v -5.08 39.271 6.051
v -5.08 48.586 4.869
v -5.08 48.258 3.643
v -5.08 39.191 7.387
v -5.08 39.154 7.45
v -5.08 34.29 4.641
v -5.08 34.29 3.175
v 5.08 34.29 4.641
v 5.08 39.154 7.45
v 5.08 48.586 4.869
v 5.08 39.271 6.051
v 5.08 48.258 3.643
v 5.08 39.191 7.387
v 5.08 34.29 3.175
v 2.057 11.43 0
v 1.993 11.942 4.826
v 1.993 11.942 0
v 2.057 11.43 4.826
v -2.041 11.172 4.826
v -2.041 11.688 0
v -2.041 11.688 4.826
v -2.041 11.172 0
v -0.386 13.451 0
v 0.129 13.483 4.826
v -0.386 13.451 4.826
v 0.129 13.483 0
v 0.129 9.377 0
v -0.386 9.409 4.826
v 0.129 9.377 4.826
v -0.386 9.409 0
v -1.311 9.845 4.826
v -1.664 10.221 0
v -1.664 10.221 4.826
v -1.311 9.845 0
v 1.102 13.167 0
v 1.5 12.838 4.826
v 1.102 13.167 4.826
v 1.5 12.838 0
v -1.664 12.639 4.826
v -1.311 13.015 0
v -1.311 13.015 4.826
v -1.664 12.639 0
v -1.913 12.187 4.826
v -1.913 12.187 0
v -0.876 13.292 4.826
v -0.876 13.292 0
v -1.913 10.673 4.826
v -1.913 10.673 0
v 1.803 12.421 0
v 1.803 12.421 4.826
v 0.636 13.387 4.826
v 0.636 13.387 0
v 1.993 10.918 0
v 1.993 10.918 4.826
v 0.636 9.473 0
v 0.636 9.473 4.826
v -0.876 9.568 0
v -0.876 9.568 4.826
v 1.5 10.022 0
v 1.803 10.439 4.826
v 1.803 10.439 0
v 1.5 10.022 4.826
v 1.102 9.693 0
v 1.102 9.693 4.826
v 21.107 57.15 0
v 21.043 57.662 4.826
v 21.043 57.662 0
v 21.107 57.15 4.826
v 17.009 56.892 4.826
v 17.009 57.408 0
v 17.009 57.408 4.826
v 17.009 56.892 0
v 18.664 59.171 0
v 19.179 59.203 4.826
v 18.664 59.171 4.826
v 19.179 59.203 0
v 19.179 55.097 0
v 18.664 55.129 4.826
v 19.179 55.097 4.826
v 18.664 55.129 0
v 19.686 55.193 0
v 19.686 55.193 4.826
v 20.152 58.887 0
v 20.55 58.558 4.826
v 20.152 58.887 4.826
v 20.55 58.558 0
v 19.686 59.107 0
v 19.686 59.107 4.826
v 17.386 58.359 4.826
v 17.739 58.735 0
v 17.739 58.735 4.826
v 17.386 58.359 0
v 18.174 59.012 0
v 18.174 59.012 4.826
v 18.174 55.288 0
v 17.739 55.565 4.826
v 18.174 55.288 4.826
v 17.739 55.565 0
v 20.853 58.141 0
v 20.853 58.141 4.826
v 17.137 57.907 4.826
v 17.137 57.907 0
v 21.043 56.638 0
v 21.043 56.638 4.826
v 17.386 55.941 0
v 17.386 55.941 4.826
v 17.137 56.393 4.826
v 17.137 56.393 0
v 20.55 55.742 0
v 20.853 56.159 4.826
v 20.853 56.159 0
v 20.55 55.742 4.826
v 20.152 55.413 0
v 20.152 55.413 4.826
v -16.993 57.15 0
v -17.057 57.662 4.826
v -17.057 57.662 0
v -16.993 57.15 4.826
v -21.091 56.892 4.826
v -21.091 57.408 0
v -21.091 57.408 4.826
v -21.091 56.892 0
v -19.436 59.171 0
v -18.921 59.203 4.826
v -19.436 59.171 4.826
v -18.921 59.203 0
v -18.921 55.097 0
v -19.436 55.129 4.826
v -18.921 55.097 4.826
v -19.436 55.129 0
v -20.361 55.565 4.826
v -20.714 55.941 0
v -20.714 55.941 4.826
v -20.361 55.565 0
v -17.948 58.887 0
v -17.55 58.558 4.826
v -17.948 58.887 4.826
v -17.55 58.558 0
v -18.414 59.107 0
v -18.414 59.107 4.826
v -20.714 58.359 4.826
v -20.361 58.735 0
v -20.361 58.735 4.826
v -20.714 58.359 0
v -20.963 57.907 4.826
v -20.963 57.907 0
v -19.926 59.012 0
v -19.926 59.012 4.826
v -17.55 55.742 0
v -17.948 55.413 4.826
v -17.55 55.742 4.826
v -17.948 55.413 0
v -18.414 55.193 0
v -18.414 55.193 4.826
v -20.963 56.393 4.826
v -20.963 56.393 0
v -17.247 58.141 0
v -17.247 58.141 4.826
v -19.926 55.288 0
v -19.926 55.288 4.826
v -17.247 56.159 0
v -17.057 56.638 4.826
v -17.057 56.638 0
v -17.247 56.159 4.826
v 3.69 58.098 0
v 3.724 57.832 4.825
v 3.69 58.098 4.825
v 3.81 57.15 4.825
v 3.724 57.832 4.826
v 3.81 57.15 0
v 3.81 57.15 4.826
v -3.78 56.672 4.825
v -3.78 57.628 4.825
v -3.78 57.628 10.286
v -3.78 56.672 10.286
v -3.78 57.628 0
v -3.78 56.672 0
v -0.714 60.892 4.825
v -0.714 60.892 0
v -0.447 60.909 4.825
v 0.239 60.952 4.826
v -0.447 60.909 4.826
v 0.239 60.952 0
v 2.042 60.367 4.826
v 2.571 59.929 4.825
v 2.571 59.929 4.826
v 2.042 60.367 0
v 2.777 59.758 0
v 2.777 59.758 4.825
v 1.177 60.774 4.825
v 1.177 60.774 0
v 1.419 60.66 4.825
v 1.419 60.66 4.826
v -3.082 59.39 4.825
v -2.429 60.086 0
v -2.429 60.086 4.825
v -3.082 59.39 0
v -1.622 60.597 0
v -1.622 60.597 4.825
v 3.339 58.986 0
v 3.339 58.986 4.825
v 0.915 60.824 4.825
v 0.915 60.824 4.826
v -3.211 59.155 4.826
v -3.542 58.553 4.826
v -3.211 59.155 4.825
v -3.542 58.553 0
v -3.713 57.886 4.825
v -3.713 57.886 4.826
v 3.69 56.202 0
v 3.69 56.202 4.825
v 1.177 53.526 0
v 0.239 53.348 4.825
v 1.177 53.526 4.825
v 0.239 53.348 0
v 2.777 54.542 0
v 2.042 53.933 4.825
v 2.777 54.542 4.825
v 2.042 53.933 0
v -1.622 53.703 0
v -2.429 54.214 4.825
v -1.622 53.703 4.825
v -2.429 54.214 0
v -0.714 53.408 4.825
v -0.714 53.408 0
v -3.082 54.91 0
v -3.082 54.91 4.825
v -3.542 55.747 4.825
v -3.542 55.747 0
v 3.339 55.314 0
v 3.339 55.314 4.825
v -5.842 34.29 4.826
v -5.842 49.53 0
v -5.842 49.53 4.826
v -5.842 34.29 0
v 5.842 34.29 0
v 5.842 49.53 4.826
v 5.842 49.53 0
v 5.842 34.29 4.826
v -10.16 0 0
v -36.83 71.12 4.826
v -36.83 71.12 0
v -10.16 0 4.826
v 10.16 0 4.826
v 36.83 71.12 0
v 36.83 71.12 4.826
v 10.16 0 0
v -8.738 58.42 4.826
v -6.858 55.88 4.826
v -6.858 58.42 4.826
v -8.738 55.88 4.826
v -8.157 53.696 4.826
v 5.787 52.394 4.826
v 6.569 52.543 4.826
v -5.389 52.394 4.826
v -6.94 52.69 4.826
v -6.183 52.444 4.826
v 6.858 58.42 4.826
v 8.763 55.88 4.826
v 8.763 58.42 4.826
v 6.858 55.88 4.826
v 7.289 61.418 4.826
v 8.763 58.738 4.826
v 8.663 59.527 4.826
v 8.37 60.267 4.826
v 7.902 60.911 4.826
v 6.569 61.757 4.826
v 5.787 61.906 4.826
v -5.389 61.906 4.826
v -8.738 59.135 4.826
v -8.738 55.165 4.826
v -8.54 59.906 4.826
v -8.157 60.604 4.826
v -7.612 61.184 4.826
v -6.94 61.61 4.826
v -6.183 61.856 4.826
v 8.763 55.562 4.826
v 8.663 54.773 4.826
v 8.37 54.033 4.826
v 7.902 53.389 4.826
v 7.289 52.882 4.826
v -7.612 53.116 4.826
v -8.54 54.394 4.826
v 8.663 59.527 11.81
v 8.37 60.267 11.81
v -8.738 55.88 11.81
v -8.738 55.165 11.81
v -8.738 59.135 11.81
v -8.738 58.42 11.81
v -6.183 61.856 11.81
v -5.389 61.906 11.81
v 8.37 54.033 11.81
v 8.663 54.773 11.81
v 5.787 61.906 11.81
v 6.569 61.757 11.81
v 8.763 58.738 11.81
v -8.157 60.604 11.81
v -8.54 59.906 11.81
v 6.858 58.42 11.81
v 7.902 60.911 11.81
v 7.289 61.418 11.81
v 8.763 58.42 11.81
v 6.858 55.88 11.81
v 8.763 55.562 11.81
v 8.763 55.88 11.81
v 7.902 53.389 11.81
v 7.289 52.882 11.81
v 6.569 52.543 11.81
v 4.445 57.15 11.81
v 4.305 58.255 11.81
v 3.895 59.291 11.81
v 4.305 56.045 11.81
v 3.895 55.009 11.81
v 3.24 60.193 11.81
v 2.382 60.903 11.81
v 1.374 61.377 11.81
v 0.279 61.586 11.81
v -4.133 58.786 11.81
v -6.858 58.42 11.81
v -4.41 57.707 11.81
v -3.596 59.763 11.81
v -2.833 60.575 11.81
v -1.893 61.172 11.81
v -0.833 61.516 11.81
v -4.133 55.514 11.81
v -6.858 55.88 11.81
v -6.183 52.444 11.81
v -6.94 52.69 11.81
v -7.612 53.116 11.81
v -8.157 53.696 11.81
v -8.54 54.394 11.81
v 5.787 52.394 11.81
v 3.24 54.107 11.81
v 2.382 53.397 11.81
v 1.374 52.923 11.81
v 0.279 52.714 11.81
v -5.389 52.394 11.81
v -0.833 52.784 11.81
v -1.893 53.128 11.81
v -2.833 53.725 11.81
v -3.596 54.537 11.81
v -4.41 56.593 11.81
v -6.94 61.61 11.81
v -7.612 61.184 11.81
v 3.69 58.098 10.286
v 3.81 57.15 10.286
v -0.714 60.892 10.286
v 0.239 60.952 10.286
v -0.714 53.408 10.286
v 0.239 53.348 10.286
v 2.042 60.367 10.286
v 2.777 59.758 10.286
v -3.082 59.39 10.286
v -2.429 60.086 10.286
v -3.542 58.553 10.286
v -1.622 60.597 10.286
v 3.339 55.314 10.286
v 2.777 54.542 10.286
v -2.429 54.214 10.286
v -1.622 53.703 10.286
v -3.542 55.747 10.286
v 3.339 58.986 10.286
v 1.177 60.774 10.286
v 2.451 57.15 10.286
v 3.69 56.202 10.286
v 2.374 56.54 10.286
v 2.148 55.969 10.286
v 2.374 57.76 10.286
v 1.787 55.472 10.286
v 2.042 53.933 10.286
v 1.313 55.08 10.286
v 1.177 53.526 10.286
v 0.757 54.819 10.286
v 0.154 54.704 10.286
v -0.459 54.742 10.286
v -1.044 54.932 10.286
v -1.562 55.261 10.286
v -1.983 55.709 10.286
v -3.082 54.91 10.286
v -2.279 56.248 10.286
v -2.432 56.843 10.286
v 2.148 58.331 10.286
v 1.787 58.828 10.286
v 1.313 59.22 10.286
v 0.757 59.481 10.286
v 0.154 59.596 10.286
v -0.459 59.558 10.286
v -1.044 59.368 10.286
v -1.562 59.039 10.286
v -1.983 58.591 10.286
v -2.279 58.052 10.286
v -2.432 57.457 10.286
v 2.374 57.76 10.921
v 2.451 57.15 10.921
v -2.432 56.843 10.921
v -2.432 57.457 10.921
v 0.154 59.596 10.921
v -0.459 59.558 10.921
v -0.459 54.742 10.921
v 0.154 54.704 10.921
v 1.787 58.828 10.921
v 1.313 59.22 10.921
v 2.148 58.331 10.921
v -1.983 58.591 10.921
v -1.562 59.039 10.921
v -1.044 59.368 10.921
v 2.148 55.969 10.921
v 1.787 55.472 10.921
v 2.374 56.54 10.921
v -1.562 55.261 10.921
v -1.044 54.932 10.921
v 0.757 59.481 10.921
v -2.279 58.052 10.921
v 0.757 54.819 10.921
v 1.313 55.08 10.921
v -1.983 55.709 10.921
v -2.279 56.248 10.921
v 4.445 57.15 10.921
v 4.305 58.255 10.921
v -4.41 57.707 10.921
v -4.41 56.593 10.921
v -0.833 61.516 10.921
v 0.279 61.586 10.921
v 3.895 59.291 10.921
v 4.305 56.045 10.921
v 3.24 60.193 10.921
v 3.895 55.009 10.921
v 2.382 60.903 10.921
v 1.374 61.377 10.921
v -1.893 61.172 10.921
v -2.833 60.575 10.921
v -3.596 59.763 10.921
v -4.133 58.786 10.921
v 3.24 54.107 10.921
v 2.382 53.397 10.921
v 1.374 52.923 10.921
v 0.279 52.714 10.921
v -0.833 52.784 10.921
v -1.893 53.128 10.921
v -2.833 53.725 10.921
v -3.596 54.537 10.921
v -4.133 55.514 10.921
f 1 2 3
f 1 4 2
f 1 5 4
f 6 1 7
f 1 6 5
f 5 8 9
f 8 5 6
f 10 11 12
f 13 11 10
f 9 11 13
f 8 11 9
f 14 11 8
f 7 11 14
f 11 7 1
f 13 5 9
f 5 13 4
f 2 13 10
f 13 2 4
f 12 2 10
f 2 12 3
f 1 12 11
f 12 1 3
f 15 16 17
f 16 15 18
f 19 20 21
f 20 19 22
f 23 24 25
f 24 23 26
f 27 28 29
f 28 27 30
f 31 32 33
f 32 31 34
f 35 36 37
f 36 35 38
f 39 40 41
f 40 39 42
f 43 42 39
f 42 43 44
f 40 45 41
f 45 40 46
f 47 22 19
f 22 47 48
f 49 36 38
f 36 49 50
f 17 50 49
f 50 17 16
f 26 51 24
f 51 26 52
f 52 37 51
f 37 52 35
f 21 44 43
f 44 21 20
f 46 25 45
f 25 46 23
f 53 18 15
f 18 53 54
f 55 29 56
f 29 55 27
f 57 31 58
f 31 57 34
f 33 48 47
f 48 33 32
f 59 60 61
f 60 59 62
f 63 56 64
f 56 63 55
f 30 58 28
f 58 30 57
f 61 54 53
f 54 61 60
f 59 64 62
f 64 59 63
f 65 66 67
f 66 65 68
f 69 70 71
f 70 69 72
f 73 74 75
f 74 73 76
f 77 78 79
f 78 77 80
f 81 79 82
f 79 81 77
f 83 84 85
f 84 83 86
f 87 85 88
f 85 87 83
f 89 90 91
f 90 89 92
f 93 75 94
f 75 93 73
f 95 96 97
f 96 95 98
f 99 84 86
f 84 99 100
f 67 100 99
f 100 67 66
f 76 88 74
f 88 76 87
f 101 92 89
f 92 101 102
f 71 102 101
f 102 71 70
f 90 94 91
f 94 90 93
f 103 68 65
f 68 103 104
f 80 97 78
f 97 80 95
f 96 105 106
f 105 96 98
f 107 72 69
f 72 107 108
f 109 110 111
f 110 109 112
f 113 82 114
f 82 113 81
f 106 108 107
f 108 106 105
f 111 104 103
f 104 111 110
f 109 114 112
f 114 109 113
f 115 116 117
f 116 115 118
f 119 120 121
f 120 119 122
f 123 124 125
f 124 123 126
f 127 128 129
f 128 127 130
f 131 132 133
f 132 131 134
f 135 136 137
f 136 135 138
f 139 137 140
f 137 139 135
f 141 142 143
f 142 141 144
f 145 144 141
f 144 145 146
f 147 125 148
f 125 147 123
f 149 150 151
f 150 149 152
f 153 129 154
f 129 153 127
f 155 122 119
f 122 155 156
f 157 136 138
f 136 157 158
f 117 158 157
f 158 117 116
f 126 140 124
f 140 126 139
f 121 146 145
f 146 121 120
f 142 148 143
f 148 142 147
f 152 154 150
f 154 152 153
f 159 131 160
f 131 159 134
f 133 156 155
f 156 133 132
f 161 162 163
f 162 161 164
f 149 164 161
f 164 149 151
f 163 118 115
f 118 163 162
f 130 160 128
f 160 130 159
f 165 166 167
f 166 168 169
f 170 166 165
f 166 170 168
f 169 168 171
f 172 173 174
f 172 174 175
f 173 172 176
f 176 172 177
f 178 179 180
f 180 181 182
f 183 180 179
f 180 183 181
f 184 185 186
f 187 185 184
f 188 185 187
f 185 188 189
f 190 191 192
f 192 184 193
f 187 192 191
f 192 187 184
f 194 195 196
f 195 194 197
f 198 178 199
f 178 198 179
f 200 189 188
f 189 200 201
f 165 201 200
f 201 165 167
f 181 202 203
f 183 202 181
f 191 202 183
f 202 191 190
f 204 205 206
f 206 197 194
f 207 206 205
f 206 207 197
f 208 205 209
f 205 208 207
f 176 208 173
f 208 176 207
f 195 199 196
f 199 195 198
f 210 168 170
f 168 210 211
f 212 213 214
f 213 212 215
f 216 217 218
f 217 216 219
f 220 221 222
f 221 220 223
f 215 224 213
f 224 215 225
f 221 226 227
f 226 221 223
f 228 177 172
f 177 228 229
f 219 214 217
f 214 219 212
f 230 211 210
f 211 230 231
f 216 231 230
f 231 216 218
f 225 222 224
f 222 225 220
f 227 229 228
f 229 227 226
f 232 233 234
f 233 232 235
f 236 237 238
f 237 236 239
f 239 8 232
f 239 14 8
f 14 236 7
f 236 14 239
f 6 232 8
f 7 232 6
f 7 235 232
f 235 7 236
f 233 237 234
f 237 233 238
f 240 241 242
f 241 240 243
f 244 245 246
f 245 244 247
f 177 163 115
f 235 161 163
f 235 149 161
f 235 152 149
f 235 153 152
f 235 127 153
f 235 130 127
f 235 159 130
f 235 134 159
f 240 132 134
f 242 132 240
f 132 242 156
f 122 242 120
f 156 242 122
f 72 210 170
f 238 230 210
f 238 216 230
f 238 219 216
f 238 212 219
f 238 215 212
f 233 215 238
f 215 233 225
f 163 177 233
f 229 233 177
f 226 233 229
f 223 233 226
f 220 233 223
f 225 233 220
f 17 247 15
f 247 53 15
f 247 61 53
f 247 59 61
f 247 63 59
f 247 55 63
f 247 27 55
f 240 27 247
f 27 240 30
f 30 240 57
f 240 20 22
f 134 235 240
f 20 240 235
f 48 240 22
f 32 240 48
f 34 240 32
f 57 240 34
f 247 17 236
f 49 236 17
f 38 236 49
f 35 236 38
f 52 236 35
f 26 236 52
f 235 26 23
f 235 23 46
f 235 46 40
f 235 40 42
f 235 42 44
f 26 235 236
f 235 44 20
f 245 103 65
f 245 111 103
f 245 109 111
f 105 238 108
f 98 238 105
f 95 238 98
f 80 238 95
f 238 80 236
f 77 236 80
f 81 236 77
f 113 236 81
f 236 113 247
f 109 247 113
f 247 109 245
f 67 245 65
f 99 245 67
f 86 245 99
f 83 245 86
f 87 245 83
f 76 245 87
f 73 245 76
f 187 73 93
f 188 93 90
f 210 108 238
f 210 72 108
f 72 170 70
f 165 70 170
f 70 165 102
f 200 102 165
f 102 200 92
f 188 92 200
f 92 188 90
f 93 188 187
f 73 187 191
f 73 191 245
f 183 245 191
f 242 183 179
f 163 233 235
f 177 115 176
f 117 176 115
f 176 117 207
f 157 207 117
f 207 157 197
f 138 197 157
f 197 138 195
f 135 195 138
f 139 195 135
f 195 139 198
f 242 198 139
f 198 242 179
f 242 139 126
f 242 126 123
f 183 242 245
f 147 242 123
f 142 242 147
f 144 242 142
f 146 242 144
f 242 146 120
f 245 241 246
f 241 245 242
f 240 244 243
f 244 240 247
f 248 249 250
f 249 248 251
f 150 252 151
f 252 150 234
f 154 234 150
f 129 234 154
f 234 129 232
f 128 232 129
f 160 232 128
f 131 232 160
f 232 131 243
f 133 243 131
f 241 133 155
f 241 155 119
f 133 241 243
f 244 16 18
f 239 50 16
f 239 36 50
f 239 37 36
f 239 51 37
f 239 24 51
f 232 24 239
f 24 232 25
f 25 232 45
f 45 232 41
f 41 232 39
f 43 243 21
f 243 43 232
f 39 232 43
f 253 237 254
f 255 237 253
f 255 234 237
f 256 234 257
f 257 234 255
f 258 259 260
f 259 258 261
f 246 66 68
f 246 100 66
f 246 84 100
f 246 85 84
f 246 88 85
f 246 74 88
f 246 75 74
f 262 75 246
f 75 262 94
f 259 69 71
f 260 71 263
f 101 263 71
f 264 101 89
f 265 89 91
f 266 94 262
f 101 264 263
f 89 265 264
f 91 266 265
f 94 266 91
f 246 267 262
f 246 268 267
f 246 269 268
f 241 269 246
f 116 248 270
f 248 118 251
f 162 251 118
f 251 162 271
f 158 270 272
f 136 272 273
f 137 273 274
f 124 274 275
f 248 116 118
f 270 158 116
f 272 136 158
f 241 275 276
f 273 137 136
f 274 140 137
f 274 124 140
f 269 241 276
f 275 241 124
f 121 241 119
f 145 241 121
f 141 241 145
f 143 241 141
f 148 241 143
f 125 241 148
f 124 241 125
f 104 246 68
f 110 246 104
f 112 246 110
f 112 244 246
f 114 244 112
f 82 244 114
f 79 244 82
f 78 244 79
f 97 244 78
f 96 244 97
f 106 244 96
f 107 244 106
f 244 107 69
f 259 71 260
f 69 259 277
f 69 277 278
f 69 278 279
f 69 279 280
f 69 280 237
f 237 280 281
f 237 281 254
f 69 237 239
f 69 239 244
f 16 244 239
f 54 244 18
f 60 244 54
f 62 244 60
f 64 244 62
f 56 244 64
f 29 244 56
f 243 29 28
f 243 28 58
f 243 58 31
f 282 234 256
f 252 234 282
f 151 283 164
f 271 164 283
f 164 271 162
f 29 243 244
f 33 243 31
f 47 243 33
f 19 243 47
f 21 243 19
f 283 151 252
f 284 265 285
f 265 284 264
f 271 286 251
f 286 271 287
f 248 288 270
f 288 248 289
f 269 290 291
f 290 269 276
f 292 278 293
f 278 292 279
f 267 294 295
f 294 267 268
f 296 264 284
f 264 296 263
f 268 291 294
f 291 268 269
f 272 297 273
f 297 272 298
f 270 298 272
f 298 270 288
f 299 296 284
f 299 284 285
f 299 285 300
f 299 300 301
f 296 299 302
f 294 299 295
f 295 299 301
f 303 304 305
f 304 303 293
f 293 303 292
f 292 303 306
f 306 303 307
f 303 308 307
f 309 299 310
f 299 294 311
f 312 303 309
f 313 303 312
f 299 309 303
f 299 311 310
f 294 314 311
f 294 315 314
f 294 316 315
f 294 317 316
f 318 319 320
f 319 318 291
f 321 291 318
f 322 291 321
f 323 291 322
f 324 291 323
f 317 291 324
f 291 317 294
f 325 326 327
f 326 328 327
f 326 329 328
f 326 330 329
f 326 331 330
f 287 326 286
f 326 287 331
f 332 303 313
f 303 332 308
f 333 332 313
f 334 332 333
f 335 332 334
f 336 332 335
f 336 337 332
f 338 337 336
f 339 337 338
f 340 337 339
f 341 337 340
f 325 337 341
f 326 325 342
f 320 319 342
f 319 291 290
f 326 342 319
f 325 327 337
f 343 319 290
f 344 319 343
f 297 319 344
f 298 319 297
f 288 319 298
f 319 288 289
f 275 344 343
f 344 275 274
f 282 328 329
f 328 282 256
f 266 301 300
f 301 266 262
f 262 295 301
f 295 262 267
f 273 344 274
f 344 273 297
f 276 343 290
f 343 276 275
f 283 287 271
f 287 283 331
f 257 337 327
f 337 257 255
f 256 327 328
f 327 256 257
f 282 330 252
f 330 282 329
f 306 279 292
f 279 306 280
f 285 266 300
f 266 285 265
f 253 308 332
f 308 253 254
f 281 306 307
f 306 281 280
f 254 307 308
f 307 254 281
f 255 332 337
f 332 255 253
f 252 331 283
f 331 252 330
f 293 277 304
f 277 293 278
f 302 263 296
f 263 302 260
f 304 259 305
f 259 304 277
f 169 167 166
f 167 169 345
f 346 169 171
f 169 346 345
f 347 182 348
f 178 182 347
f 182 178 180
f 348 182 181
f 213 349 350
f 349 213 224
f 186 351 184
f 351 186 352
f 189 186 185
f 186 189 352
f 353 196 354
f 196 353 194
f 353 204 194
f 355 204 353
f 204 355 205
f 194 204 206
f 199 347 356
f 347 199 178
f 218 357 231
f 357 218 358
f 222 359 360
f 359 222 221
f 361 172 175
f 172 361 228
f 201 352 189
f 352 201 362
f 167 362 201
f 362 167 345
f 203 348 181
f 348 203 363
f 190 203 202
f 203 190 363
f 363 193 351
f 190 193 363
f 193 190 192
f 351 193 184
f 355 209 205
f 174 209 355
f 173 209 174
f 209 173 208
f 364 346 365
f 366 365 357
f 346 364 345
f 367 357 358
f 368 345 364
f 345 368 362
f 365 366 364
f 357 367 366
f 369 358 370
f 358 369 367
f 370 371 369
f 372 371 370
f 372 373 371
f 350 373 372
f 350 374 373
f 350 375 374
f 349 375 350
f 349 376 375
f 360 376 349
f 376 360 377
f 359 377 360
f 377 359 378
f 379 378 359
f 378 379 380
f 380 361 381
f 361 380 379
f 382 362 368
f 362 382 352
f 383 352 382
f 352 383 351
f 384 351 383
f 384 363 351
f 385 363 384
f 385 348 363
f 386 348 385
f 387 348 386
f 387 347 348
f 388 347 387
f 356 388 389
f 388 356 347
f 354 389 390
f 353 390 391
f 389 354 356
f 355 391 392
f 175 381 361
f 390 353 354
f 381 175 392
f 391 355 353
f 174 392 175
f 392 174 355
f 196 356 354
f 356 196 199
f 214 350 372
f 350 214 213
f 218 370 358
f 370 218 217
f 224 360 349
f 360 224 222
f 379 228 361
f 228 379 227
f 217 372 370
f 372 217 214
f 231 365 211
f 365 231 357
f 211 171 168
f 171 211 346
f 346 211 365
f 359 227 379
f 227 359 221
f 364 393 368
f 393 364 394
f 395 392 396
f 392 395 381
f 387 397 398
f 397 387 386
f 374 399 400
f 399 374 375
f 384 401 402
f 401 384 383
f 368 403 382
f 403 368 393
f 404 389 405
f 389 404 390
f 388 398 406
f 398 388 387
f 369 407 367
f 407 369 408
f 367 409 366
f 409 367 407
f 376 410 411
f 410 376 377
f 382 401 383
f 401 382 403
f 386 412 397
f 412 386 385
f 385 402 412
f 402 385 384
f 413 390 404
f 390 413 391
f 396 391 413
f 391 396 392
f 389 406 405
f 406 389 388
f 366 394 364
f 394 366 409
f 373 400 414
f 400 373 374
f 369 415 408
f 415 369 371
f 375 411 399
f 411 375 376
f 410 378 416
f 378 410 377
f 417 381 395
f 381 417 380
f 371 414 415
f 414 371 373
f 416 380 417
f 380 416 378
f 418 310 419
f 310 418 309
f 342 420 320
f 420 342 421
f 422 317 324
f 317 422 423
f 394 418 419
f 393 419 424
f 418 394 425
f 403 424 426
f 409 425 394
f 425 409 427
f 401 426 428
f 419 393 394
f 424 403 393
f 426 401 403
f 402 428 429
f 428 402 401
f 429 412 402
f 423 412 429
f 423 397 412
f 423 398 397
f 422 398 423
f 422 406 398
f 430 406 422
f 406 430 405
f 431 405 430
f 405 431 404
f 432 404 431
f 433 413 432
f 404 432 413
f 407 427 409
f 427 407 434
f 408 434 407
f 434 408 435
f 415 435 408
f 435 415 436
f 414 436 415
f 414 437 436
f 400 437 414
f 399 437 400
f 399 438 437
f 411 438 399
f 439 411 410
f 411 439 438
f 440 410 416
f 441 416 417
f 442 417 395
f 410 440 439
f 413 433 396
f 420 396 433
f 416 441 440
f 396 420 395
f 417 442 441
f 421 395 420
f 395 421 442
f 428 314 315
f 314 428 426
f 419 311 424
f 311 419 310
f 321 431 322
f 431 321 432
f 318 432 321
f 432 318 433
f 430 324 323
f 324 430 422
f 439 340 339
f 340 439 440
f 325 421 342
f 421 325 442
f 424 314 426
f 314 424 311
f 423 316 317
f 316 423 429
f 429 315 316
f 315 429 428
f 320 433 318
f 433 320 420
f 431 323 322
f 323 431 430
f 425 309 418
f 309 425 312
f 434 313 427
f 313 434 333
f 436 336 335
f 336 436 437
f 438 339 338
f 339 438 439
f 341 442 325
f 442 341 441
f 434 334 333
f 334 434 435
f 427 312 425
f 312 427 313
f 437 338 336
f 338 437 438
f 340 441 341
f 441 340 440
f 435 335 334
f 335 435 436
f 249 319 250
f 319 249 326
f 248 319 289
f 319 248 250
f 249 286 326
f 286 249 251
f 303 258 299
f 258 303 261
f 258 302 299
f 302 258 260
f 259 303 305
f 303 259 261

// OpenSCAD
// Replacement bracket for Bontrager 'City Shopping (2008)' bicycle pannier (bike bag).
// By: Drmn4ea (drmn4ea at gmail)
// This is the 'bag' side of the clip assembly that mates with the original clip, and can be fixed to the bag with bolts (or riveted like the original).
// License: Creative Commons CC BY-SA


$fn=25;

// Scale factor (inches to mm)
s = 25.4;

bolt_od = 0.162; // diameter of the bolt (formerly rivet) holes

bolt_offset = 0.45; // bolt center distance from bottom edge

clipholder_bolt_insert_od = .300; // diameter of bolt insert; needs to be known and consistent to main script and clipholder module


difference()
{
    // making the main plate 2.3 wide x 2.8 tall.
    linear_extrude(height = .190*s, center = false, convexity = 10)
    {
        polygon(points=[[-0.40*s,0], [0.40*s,0], [1.45*s,2.8*s], [-1.45*s,2.8*s] ]);
    }

    // add the 3 outer bolt holes
    // The baseplate is intentionally a bit larger than the original (+.266,.35) for robustness,
    // split the difference a bit for the hole placements
    translate([0,bolt_offset*s,0])
    {
        translate([0,0,0])
        {
            cylinder(h=20, r=bolt_od*s/2, center=true);
        }

        translate([(1.5/2)*s, 1.8*s, 0])
        {
            cylinder(h=20, r=bolt_od*s/2, center=true);
        }

        translate([(-1.5/2)*s, 1.8*s, 0])
        {
            cylinder(h=20, r=bolt_od*s/2, center=true);
        }

        // FIXME: hole for clip holder bolt insert
        translate([0, 1.8*s, 0])
        {
            cylinder(h=50, r=clipholder_bolt_insert_od*s/2, center=true);
        }
        // Add the opening for the retention latch, beginning ~0.9" above the bottom screwhole; .460 x .600
        translate([0, (0.9+.3)*s, 0])
        {
            cube([.46*s, .6*s, 20], center=true);
        }
        

    }
}

// Add the retention latch

// Add the clip holder
// start at the same offset as the bolt holes
translate([0,(bolt_offset+0.9+.3)*s,0])
{
    latch(s);
}

translate([0,(bolt_offset+1.8)*s,(.190*s)-.001])
{
    clipholder(s, clipholder_bolt_insert_od);
}


module latch(s)
{
    size = [0.4*s, 0.6*s, .125*s]; // bounding dimensions of the latch feature
    t = 0.05*s; // thickness
    attach_angle = 30; // angle on the attaching side
    detach_angle = 15; // angle on the detaching side
    x = size[0];
    y = size[1];
    z = size[2];
    translate([-x/2,-y/2,z])
    {
        rotate([attach_angle,0,0])
        {
            // WARNING: Major fudging here since this is a one-off and I can't be arsed to do the math
            attach_len = z*(1/sin(attach_angle));
            cube(size=[x, attach_len, t], center=false);
            translate([0, attach_len, 0])
            {
                rotate([-detach_angle-attach_angle,0,0])
                {

                    translate([0, -t/1.5, -t/3]) // fudge 2nd cube into 2st one in easier frame of reference
                    {
                        detach_len = z*(1/sin(detach_angle));
                        cube(size=[x, detach_len-(t*2), t], center=false);
                    }
                }
            }
        }
    }
}

module clipholder(s, clipholder_bolt_insert_od)
{

    size = [0.69*s, 0.375*s, 0.275*s]; // outer dimensions of the clip holder feature
    notch_size = [.075*s, .1*s]; // [x, y] dimensions of the notches on either end
    center_hole_dia = 0.193*s; 
    center_spring_face_dia = 0.350*s;

    // FIXME: clipholder_bolt_insert_od

    translate([0, 0, size[2]/2])
    {
        difference()
        {
            // the main feature
            roundedcube(size, center=true, radius=0.125*s, apply_to = "z");
            
            // hole for bolt insert - goes *almost* all the way through!
            translate([0, 0, -0.06*s])
            {
                cylinder(h=size[2], r=clipholder_bolt_insert_od*s/2, center=true);
            }
            
            //bolt hole
            cylinder(h=size[2]+1, r=center_hole_dia/2, center=true);
            

        
            //spring retention feature
            translate([0,0,size[2]/2])
            {
                cylinder(h=.035*s*2, r=center_spring_face_dia/2, center=true);
            }
            
            // the slots on either side
            translate([-(size[0]/2 - notch_size[0]/2), 0 , 0])
            {
                cube([notch_size[0]+.001, notch_size[1]+.001, size[2]+1], center=true);
            }
            translate([+(size[0]/2 - notch_size[0]/2), 0 , 0])
            {
                cube([notch_size[0]+.001, notch_size[1]+.001, size[2]+1], center=true);
            }
        }
    }
}

// from https://danielupshaw.com/openscad-rounded-corners/
module roundedcube(size = [1, 1, 1], center = false, radius = 0.5, apply_to = "all") {
	// If single value, convert to [x, y, z] vector
	size = (size[0] == undef) ? [size, size, size] : size;

	translate_min = radius;
	translate_xmax = size[0] - radius;
	translate_ymax = size[1] - radius;
	translate_zmax = size[2] - radius;

	diameter = radius * 2;

	obj_translate = (center == false) ?
		[0, 0, 0] : [
			-(size[0] / 2),
			-(size[1] / 2),
			-(size[2] / 2)
		];

	translate(v = obj_translate) {
		hull() {
			for (translate_x = [translate_min, translate_xmax]) {
				x_at = (translate_x == translate_min) ? "min" : "max";
				for (translate_y = [translate_min, translate_ymax]) {
					y_at = (translate_y == translate_min) ? "min" : "max";
					for (translate_z = [translate_min, translate_zmax]) {
						z_at = (translate_z == translate_min) ? "min" : "max";

						translate(v = [translate_x, translate_y, translate_z])
						if (
							(apply_to == "all") ||
							(apply_to == "xmin" && x_at == "min") || (apply_to == "xmax" && x_at == "max") ||
							(apply_to == "ymin" && y_at == "min") || (apply_to == "ymax" && y_at == "max") ||
							(apply_to == "zmin" && z_at == "min") || (apply_to == "zmax" && z_at == "max")
						) {
							sphere(r = radius);
						} else {
							rotate = 
								(apply_to == "xmin" || apply_to == "xmax" || apply_to == "x") ? [0, 90, 0] : (
								(apply_to == "ymin" || apply_to == "ymax" || apply_to == "y") ? [90, 90, 0] :
								[0, 0, 0]
							);
							rotate(a = rotate)
							cylinder(h = diameter, r = radius, center = true);
						}
					}
				}
			}
		}
	}
}
